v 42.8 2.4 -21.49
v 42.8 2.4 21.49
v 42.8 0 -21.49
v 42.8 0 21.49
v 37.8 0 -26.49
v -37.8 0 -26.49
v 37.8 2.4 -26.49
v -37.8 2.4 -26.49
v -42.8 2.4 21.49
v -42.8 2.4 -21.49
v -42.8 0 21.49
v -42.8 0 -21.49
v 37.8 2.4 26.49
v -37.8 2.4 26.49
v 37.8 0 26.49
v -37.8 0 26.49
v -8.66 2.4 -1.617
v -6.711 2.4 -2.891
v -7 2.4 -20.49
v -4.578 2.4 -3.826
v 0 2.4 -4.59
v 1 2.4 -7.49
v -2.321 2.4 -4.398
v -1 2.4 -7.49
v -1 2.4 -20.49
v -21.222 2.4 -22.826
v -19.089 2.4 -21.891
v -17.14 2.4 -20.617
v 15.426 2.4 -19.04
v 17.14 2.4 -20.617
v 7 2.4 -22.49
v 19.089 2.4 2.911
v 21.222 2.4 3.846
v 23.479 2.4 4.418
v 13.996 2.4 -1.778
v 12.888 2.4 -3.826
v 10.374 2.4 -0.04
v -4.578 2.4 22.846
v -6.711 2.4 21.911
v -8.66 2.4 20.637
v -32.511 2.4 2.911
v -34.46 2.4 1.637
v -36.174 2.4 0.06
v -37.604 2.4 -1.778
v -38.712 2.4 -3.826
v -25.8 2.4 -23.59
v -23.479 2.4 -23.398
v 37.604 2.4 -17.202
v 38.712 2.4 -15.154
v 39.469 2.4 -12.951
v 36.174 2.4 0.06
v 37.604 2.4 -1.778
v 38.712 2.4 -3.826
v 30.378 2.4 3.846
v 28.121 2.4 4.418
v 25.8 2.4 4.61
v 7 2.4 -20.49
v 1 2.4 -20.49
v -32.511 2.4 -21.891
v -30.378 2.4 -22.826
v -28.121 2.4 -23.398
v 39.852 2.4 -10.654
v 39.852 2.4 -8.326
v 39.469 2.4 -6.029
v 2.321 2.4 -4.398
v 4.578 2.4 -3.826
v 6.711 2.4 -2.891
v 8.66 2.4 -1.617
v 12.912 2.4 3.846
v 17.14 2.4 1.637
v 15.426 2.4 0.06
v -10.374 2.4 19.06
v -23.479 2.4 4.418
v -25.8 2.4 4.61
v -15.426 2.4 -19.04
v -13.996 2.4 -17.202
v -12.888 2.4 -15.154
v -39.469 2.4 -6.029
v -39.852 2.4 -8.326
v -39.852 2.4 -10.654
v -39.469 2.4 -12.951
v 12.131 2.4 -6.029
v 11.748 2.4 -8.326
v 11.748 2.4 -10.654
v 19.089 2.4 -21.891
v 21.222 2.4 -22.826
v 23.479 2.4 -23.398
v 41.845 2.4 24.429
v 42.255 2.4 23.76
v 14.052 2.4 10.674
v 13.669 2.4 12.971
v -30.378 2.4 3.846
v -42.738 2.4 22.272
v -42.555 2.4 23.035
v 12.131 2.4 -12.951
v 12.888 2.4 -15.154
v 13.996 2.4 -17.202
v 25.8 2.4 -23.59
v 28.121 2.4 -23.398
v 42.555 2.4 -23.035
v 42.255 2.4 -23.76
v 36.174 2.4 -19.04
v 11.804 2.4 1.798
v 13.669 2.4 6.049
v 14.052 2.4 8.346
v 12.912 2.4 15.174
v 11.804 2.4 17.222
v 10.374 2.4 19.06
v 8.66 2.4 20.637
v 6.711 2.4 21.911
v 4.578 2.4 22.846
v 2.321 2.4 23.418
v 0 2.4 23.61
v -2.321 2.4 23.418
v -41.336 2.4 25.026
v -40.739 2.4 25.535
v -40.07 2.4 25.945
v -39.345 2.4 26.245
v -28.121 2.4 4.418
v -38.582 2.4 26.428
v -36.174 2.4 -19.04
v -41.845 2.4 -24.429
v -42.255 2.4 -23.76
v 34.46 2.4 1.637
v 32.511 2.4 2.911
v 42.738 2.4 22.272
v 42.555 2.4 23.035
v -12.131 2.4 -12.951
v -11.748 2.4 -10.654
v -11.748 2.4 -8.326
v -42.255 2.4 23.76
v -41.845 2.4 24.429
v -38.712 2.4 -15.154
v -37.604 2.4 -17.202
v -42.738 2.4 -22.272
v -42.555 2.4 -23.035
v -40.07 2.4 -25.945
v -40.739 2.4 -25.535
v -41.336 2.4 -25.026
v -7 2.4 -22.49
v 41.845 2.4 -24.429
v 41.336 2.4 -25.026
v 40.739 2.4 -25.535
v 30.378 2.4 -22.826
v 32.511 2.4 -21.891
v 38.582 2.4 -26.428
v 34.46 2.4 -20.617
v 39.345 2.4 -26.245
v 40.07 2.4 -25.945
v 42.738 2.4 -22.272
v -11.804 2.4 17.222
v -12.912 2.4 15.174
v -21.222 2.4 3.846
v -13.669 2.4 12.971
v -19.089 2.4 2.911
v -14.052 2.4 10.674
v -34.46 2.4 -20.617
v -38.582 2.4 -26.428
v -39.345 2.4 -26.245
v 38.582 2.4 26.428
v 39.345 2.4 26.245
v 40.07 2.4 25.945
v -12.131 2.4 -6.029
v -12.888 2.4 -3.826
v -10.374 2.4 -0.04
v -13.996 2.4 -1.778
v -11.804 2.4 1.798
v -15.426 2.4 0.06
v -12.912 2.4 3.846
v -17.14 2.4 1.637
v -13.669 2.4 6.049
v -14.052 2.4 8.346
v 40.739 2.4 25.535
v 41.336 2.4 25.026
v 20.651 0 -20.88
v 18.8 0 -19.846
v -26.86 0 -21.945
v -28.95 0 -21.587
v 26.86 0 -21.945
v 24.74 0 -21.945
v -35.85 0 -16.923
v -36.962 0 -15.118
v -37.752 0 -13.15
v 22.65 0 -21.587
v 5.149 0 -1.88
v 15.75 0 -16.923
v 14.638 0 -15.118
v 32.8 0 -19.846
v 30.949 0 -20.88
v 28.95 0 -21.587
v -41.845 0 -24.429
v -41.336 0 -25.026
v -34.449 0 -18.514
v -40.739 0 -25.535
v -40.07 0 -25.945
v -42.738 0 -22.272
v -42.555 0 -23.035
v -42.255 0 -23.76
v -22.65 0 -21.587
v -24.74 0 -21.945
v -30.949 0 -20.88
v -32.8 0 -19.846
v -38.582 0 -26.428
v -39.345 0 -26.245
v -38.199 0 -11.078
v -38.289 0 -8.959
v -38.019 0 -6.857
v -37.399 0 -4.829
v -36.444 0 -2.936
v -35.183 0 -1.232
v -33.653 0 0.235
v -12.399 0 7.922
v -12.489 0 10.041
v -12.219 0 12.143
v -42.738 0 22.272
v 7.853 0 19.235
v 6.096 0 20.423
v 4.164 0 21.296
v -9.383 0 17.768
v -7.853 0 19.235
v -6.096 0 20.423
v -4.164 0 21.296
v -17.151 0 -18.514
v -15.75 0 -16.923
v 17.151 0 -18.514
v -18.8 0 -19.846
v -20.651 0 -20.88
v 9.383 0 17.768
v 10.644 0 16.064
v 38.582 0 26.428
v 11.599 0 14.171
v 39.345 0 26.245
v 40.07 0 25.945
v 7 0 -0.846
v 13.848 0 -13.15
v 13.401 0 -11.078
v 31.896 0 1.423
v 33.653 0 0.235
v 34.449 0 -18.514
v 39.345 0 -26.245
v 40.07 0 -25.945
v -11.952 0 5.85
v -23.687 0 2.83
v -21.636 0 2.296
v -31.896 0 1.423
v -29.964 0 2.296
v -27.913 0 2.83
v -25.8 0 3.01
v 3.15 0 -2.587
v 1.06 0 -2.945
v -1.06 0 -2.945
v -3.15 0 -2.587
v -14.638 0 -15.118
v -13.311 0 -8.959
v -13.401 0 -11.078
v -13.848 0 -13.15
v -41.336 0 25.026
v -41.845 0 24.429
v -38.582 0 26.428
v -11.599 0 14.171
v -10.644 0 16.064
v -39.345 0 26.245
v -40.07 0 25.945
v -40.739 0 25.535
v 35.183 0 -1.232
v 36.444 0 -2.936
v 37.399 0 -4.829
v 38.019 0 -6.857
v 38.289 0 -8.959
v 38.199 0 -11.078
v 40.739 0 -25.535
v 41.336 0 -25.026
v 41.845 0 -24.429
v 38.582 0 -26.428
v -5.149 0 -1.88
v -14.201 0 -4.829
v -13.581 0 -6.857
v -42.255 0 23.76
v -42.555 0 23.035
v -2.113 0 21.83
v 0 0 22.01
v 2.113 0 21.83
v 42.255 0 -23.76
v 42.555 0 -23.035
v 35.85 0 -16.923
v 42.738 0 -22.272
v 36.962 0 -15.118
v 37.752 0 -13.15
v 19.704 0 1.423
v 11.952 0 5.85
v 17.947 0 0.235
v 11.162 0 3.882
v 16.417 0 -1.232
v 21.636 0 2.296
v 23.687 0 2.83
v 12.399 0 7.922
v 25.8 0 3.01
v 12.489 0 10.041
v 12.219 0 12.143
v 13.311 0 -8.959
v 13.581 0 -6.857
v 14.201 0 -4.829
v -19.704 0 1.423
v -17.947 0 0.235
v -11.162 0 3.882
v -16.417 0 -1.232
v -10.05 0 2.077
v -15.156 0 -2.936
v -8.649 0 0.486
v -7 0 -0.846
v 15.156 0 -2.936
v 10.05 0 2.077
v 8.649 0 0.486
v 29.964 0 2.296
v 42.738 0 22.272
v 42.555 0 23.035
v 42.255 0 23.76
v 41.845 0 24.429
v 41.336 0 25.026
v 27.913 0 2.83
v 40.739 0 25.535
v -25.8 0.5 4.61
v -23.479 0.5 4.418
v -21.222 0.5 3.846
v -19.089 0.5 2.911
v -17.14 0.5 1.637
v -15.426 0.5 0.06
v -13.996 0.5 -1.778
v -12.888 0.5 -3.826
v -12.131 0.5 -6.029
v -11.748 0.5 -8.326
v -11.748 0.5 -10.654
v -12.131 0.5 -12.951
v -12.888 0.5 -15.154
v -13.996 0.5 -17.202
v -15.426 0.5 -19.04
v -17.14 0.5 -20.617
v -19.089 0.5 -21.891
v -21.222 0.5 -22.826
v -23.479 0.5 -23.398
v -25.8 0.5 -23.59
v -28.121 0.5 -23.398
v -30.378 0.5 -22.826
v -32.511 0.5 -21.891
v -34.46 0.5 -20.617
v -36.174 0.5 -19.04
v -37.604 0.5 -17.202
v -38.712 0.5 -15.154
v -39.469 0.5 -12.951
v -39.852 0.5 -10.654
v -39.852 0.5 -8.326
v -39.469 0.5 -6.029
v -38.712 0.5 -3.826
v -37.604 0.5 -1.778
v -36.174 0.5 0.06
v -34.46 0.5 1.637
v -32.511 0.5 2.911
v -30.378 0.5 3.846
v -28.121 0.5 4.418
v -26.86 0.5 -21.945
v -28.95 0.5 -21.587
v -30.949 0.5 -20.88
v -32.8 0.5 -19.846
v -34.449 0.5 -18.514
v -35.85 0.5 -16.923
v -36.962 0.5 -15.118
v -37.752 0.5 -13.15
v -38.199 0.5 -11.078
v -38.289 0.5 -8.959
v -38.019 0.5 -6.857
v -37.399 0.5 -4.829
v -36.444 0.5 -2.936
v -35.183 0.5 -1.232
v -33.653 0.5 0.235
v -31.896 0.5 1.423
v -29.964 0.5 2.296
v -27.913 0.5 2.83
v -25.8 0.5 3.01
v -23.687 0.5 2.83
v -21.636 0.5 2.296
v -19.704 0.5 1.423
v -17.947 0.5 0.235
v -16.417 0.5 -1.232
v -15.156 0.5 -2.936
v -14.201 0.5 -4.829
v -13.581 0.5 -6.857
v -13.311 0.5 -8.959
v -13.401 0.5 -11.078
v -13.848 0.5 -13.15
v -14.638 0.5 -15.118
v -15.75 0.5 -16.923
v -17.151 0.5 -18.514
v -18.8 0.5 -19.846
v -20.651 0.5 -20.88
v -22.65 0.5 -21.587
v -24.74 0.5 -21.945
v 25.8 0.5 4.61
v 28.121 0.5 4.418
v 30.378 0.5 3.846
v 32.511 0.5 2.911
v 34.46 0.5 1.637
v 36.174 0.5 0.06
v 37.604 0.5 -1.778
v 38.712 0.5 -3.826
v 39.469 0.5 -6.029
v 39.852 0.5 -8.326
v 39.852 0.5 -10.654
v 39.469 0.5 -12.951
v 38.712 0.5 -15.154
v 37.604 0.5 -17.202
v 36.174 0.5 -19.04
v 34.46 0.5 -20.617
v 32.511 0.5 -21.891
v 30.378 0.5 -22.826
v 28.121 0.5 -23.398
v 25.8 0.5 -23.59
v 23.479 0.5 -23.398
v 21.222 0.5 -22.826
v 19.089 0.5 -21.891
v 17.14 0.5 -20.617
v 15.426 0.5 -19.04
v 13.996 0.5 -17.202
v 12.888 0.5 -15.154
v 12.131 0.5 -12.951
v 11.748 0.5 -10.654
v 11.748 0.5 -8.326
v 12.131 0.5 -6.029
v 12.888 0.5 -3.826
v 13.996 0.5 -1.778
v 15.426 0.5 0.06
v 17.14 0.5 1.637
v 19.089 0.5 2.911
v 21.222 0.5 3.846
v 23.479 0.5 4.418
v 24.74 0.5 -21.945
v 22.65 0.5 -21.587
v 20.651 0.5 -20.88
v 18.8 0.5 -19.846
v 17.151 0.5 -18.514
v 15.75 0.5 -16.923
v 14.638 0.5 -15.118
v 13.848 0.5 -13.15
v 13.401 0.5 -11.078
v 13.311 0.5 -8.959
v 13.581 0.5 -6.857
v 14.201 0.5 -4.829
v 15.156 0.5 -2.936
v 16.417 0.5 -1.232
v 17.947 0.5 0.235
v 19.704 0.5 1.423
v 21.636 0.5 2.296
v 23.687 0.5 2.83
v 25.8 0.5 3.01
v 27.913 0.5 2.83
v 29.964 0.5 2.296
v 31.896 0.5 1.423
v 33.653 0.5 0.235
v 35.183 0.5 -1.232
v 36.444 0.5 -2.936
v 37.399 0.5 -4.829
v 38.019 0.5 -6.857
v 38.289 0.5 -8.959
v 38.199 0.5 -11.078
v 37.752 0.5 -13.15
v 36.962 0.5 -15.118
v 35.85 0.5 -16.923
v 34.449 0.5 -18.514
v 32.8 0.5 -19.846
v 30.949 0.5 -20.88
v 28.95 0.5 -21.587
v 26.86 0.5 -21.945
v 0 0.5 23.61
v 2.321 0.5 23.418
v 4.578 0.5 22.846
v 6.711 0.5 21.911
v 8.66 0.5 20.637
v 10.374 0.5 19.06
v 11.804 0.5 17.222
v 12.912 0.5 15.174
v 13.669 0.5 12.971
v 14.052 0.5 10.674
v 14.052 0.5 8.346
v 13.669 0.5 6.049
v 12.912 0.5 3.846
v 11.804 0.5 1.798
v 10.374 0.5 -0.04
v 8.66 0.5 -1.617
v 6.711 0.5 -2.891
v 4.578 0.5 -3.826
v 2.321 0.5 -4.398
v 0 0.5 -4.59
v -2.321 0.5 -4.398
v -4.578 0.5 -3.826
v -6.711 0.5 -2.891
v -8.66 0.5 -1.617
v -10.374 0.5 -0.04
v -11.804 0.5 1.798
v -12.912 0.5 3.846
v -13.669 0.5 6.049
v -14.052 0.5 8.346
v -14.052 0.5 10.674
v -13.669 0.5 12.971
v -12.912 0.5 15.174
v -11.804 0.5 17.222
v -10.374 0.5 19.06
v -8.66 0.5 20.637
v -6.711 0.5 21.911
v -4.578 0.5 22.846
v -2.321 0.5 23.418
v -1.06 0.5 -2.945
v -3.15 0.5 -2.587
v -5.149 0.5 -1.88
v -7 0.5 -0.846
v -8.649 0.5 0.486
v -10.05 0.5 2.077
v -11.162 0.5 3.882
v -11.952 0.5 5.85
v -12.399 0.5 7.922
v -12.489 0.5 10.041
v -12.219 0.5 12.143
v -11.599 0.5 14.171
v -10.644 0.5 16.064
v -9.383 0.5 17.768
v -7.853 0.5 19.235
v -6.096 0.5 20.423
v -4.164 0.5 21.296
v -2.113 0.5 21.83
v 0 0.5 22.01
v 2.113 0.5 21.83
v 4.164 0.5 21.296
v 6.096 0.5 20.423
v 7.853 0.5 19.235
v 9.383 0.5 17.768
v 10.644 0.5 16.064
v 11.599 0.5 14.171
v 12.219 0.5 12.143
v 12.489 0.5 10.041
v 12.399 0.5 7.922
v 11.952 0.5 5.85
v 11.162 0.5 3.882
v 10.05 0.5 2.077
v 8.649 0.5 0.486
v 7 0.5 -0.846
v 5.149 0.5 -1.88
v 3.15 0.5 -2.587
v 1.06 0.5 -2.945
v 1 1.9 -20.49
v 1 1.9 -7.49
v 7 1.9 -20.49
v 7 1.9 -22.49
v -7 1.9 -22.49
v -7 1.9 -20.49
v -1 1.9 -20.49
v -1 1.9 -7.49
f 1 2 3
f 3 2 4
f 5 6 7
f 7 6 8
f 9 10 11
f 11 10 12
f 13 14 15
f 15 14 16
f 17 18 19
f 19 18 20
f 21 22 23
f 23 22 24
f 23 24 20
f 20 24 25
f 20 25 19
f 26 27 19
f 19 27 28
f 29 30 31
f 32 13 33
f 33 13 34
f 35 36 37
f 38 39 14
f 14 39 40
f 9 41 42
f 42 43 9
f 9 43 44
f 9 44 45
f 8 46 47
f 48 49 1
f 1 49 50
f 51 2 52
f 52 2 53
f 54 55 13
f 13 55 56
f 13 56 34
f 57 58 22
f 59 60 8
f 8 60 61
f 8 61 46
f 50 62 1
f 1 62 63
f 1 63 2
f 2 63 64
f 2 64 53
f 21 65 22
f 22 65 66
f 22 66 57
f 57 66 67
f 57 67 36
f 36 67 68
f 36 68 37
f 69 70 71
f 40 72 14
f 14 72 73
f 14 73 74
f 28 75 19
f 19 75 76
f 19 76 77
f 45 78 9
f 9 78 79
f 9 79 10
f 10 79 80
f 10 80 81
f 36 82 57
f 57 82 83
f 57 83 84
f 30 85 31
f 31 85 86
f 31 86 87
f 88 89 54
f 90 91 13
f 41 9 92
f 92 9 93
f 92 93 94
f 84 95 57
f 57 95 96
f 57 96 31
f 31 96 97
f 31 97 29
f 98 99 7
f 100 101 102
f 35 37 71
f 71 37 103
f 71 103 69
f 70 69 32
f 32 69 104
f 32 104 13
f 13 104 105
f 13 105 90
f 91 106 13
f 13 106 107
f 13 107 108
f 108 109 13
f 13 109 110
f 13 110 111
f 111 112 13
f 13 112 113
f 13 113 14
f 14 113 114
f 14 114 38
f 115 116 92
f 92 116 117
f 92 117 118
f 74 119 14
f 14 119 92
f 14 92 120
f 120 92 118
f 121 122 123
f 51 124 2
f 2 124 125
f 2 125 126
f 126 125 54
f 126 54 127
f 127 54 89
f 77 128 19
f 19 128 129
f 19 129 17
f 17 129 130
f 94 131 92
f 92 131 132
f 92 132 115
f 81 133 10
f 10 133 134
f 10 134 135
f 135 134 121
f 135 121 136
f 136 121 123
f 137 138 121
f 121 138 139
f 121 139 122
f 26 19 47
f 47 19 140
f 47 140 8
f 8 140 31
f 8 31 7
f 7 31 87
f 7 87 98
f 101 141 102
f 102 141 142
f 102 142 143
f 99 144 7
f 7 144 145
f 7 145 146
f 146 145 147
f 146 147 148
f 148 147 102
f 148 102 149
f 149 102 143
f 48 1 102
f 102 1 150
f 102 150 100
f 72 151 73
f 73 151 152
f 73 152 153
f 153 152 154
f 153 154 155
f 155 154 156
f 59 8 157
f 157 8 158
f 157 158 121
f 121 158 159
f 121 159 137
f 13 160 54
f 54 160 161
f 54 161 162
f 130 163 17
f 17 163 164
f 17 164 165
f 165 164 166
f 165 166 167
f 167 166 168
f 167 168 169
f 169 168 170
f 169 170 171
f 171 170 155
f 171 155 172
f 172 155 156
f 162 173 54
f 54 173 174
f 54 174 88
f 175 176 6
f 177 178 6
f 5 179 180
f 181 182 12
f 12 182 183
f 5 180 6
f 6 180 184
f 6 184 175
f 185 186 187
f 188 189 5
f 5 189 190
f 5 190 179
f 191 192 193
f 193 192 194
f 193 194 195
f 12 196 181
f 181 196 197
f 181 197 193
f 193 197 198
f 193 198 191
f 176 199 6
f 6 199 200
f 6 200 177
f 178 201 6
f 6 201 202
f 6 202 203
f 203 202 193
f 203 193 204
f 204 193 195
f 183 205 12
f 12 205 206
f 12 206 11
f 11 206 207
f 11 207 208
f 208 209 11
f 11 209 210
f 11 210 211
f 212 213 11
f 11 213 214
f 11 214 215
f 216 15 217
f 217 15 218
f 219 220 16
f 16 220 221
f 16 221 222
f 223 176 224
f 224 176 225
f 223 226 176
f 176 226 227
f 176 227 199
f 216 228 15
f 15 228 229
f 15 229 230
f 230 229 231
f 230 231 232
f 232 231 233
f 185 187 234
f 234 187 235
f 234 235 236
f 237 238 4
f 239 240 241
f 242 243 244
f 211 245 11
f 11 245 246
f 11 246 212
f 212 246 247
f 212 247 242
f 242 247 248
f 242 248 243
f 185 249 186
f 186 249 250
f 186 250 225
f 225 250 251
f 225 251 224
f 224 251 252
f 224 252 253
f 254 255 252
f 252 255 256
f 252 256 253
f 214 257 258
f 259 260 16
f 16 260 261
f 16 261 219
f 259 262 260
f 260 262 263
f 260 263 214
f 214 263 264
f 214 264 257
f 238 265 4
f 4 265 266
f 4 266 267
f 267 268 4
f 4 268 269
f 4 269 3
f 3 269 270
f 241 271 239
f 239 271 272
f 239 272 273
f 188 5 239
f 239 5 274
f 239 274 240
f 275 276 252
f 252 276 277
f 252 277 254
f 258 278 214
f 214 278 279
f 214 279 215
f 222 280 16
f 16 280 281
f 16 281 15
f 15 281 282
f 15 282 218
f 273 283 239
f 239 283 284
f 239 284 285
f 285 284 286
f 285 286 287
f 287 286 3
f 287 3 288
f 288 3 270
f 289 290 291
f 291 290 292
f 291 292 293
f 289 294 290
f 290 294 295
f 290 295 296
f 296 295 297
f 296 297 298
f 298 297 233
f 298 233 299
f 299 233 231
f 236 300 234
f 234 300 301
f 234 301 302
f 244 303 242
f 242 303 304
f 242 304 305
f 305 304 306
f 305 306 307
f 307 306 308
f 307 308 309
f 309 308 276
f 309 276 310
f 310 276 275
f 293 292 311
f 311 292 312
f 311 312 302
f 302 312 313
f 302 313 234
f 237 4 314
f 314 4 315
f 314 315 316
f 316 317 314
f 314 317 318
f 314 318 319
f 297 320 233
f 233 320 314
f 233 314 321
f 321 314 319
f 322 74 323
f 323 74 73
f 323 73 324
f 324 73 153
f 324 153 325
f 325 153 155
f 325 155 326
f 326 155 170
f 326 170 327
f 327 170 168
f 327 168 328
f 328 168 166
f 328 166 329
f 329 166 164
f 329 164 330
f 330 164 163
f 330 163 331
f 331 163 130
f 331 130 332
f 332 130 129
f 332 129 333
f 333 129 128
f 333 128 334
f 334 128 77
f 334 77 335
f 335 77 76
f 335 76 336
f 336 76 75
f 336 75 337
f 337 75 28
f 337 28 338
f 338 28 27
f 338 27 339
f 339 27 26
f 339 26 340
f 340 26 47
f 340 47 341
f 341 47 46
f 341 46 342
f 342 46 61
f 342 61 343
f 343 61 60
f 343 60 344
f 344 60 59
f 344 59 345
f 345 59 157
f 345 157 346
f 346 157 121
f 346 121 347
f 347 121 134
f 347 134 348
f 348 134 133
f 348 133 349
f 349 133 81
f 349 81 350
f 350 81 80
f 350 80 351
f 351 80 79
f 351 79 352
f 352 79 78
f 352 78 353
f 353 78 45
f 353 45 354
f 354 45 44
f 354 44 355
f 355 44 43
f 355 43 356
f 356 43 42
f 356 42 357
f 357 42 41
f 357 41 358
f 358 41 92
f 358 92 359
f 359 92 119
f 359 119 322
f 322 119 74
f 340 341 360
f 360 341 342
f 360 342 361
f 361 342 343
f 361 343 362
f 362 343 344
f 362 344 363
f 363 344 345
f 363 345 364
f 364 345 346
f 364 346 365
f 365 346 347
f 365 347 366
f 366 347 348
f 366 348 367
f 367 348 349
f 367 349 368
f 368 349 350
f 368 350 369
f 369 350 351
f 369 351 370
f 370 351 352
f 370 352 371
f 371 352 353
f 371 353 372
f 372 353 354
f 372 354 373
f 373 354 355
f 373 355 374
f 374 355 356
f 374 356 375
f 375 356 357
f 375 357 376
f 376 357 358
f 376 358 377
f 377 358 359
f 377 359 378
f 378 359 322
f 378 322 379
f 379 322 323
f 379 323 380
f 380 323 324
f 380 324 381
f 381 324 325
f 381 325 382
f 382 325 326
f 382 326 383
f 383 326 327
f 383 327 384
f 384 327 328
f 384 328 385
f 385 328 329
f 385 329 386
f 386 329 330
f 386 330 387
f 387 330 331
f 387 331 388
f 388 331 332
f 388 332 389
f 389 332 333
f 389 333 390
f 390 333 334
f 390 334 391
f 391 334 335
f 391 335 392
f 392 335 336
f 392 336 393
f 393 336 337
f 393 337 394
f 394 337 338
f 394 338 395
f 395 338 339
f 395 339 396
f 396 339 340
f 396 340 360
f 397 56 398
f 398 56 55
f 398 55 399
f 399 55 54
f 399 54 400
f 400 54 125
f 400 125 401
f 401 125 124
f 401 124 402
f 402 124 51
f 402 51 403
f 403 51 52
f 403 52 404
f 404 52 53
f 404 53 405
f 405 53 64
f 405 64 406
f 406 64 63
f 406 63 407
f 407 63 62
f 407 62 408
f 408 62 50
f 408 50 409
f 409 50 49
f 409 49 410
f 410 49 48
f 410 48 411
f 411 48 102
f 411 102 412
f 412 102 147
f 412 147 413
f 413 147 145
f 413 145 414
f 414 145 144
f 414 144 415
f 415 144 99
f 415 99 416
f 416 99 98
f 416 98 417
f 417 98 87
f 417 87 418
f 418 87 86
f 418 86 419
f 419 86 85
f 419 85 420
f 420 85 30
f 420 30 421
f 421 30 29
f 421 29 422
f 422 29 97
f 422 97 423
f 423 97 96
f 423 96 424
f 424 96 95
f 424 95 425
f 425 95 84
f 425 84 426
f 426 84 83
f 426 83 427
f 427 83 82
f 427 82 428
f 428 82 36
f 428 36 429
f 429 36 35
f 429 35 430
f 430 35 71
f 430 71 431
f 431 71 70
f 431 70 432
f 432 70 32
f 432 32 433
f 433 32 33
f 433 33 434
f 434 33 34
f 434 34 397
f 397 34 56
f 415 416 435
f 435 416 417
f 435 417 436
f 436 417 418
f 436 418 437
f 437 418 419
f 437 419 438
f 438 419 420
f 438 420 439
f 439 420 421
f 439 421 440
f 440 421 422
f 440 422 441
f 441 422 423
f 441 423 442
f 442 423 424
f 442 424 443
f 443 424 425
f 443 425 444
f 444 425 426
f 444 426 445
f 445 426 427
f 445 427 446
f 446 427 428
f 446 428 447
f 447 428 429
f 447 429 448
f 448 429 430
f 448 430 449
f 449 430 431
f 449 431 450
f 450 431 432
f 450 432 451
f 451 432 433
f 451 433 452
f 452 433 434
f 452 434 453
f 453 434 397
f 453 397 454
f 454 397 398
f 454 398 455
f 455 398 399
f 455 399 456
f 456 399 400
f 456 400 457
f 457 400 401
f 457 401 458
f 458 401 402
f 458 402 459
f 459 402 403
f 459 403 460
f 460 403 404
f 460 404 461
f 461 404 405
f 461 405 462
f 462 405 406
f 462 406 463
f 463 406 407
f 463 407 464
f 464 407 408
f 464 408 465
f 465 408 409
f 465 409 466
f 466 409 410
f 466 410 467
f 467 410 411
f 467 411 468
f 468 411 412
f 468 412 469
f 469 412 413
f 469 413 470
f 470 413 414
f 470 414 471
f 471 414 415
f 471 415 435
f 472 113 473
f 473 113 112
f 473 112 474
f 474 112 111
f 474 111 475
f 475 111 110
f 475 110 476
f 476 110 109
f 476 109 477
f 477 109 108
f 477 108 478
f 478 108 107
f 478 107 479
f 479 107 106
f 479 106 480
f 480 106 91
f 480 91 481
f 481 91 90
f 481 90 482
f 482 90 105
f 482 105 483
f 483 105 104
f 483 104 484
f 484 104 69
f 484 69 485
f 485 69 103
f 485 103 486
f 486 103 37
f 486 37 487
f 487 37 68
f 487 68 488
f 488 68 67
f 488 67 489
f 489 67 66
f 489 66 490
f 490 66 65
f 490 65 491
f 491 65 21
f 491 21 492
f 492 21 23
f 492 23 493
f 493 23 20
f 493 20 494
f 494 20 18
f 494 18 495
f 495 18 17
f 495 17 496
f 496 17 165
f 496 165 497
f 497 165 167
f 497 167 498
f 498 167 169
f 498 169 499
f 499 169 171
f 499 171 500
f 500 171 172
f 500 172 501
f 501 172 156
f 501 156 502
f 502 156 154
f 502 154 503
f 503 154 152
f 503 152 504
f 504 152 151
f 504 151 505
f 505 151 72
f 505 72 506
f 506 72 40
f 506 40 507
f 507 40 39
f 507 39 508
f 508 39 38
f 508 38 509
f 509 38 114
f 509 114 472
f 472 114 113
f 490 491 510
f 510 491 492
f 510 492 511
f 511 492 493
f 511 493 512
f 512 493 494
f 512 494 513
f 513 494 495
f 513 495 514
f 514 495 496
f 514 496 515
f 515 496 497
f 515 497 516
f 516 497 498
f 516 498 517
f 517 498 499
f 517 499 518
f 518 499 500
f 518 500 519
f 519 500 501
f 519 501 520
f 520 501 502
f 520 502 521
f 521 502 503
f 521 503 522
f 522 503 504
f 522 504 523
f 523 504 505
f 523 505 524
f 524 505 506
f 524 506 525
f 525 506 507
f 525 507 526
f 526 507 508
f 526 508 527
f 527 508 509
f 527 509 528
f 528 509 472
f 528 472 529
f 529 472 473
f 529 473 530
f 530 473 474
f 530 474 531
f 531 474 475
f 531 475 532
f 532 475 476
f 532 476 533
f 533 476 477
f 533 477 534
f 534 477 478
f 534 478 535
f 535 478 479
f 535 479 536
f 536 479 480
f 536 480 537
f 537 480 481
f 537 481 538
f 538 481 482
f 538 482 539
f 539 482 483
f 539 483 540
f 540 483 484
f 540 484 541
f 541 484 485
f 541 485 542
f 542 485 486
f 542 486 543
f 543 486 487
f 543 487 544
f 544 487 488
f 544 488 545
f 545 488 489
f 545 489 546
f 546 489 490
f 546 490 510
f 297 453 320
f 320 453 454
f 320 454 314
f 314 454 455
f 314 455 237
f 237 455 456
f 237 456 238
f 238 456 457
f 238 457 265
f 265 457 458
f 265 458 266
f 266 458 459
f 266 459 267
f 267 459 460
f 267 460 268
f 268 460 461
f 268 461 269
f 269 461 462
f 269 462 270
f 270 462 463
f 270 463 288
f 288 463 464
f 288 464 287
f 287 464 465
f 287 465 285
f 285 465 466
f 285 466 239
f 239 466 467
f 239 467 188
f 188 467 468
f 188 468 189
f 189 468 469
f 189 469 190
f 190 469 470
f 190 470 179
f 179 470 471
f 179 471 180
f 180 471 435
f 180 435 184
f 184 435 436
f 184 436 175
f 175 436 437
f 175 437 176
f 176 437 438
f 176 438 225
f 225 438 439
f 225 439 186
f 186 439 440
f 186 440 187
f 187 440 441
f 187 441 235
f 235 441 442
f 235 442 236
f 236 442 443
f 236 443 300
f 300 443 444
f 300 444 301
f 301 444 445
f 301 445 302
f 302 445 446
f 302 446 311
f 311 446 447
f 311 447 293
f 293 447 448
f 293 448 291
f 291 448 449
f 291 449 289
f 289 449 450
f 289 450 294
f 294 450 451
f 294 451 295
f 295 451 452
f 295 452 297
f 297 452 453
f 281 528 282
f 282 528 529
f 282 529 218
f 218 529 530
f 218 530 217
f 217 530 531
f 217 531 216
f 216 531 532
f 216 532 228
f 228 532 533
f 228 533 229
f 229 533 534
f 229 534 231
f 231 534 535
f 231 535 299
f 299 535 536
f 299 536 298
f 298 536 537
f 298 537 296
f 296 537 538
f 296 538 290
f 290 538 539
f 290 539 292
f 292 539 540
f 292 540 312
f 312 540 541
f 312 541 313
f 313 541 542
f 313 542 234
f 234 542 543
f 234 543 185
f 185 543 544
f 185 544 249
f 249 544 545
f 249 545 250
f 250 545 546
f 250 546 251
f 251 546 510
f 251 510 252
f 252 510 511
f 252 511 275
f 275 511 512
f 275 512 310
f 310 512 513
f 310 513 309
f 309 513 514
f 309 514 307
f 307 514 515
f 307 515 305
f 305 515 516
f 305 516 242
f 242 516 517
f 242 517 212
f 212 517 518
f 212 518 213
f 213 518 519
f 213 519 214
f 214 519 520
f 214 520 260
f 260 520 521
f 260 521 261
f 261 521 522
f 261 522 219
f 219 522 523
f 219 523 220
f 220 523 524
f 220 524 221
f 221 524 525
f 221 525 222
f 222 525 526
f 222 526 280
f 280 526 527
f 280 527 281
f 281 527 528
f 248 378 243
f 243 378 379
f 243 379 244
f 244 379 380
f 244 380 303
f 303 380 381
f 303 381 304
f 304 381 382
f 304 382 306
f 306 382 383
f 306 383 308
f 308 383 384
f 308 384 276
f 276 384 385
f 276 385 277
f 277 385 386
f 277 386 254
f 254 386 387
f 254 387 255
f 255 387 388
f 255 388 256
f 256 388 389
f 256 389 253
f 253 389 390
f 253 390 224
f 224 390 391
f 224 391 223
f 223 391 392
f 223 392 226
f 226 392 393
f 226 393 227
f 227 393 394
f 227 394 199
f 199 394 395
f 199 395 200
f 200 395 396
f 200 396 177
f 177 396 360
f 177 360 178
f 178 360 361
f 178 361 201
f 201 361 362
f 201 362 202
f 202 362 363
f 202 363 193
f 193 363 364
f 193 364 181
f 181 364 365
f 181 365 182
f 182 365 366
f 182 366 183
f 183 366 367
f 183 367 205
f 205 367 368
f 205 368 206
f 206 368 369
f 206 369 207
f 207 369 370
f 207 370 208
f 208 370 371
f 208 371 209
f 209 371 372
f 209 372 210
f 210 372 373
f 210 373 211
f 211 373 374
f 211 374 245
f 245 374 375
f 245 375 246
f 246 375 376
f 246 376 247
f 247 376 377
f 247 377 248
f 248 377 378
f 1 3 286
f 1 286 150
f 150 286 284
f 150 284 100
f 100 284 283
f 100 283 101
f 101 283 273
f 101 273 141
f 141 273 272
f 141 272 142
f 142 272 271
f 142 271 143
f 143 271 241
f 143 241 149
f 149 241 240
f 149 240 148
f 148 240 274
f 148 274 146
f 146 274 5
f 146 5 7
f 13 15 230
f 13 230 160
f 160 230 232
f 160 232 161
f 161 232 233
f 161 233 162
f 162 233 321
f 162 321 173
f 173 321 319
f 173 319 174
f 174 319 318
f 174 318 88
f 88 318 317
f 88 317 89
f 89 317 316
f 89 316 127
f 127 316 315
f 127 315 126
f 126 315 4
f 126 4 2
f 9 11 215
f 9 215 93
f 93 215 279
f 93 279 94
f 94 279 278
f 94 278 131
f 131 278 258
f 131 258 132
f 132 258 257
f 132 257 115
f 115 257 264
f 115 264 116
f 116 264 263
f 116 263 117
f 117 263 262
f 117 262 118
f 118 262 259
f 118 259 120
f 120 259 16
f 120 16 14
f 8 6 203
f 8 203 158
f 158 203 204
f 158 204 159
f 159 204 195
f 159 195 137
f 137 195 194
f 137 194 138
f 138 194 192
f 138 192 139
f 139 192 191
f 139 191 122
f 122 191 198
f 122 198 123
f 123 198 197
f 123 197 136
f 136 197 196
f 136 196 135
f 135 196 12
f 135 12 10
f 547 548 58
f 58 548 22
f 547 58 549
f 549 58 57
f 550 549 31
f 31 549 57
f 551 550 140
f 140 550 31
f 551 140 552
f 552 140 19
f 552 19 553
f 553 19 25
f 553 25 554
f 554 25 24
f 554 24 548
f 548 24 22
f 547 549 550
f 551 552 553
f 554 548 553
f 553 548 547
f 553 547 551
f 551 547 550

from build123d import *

# Parameters (mm, degrees)
SKETCH1_W               = 85.6
SKETCH1_H               = 52.98
BOSS_EXTRUDE1_DEPTH     = 2.4
SKETCH2_R               = 14.1
CUT_EXTRUDE1_DEPTH      = 1.9
SKETCH3_R               = 12.5
CUT_EXTRUDE2_DEPTH      = 1.75
FILLET1_R               = 5
CUT_EXTRUDE3_DEPTH      = 51.39166697
CUT_EXTRUDE3_DEPTH_BACK = 0.5


with BuildPart() as part:
    # Sketch1 → Boss-Extrude1 (new body)
    with BuildSketch(Plane(origin=(0, 0, 0), x_dir=(1, 0, 0), z_dir=(0, 1, 0))):
        Rectangle(SKETCH1_W, SKETCH1_H)
    extrude(amount=BOSS_EXTRUDE1_DEPTH)

    # Sketch2 → Cut-Extrude1 (cut)
    with BuildSketch(Plane(origin=(0, 2.4, 0), x_dir=(1, 0, 0), z_dir=(0, 1, 0))):
        with Locations(Location((-25.8, 9.49, 0), (0, 0, 270))):
            Circle(SKETCH2_R)
        with Locations(Location((0, -9.51, 0), (0, 0, 270))):
            Circle(SKETCH2_R)
        with Locations(Location((25.8, 9.49, 0), (0, 0, 270))):
            Circle(SKETCH2_R)
    extrude(amount=-CUT_EXTRUDE1_DEPTH, mode=Mode.SUBTRACT)

    # Sketch3 → Cut-Extrude2 (cut)
    with BuildSketch(Plane(origin=(0, 0.5, 0), x_dir=(1, 0, 0), z_dir=(0, 1, 0))):
        with Locations(Location((-25.8, 9.49, 0), (0, 0, 270))):
            Circle(SKETCH3_R)
        with Locations(Location((0, -9.51, 0), (0, 0, 270))):
            Circle(SKETCH3_R)
        with Locations(Location((25.8, 9.49, 0), (0, 0, 270))):
            Circle(SKETCH3_R)
    extrude(amount=-CUT_EXTRUDE2_DEPTH, mode=Mode.SUBTRACT)

    # Fillet1
    fillet1_edges = [part.edges().sort_by_distance(p)[0] for p in [
        (42.8, 1.2, 26.49),
        (-42.8, 1.2, 26.49),
        (-42.8, 1.2, -26.49),
        (42.8, 1.2, -26.49),
    ]]
    fillet(fillet1_edges, radius=FILLET1_R)

    # Sketch4 → Cut-Extrude3 (cut, two sides: drawn at the far end of the back side and taken through both)
    with BuildSketch(Plane(origin=(0, 2.4, 0), x_dir=(1, 0, 0), z_dir=(0, 1, 0)).offset(-CUT_EXTRUDE3_DEPTH_BACK)):
        Polygon((-7, 20.49), (-1, 20.49), (-1, 7.49), (1, 7.49), (1, 20.49), (7, 20.49), (7, 22.49), (-7, 22.49), align=None)
    extrude(amount=CUT_EXTRUDE3_DEPTH + CUT_EXTRUDE3_DEPTH_BACK, mode=Mode.SUBTRACT)


solid = part.part
